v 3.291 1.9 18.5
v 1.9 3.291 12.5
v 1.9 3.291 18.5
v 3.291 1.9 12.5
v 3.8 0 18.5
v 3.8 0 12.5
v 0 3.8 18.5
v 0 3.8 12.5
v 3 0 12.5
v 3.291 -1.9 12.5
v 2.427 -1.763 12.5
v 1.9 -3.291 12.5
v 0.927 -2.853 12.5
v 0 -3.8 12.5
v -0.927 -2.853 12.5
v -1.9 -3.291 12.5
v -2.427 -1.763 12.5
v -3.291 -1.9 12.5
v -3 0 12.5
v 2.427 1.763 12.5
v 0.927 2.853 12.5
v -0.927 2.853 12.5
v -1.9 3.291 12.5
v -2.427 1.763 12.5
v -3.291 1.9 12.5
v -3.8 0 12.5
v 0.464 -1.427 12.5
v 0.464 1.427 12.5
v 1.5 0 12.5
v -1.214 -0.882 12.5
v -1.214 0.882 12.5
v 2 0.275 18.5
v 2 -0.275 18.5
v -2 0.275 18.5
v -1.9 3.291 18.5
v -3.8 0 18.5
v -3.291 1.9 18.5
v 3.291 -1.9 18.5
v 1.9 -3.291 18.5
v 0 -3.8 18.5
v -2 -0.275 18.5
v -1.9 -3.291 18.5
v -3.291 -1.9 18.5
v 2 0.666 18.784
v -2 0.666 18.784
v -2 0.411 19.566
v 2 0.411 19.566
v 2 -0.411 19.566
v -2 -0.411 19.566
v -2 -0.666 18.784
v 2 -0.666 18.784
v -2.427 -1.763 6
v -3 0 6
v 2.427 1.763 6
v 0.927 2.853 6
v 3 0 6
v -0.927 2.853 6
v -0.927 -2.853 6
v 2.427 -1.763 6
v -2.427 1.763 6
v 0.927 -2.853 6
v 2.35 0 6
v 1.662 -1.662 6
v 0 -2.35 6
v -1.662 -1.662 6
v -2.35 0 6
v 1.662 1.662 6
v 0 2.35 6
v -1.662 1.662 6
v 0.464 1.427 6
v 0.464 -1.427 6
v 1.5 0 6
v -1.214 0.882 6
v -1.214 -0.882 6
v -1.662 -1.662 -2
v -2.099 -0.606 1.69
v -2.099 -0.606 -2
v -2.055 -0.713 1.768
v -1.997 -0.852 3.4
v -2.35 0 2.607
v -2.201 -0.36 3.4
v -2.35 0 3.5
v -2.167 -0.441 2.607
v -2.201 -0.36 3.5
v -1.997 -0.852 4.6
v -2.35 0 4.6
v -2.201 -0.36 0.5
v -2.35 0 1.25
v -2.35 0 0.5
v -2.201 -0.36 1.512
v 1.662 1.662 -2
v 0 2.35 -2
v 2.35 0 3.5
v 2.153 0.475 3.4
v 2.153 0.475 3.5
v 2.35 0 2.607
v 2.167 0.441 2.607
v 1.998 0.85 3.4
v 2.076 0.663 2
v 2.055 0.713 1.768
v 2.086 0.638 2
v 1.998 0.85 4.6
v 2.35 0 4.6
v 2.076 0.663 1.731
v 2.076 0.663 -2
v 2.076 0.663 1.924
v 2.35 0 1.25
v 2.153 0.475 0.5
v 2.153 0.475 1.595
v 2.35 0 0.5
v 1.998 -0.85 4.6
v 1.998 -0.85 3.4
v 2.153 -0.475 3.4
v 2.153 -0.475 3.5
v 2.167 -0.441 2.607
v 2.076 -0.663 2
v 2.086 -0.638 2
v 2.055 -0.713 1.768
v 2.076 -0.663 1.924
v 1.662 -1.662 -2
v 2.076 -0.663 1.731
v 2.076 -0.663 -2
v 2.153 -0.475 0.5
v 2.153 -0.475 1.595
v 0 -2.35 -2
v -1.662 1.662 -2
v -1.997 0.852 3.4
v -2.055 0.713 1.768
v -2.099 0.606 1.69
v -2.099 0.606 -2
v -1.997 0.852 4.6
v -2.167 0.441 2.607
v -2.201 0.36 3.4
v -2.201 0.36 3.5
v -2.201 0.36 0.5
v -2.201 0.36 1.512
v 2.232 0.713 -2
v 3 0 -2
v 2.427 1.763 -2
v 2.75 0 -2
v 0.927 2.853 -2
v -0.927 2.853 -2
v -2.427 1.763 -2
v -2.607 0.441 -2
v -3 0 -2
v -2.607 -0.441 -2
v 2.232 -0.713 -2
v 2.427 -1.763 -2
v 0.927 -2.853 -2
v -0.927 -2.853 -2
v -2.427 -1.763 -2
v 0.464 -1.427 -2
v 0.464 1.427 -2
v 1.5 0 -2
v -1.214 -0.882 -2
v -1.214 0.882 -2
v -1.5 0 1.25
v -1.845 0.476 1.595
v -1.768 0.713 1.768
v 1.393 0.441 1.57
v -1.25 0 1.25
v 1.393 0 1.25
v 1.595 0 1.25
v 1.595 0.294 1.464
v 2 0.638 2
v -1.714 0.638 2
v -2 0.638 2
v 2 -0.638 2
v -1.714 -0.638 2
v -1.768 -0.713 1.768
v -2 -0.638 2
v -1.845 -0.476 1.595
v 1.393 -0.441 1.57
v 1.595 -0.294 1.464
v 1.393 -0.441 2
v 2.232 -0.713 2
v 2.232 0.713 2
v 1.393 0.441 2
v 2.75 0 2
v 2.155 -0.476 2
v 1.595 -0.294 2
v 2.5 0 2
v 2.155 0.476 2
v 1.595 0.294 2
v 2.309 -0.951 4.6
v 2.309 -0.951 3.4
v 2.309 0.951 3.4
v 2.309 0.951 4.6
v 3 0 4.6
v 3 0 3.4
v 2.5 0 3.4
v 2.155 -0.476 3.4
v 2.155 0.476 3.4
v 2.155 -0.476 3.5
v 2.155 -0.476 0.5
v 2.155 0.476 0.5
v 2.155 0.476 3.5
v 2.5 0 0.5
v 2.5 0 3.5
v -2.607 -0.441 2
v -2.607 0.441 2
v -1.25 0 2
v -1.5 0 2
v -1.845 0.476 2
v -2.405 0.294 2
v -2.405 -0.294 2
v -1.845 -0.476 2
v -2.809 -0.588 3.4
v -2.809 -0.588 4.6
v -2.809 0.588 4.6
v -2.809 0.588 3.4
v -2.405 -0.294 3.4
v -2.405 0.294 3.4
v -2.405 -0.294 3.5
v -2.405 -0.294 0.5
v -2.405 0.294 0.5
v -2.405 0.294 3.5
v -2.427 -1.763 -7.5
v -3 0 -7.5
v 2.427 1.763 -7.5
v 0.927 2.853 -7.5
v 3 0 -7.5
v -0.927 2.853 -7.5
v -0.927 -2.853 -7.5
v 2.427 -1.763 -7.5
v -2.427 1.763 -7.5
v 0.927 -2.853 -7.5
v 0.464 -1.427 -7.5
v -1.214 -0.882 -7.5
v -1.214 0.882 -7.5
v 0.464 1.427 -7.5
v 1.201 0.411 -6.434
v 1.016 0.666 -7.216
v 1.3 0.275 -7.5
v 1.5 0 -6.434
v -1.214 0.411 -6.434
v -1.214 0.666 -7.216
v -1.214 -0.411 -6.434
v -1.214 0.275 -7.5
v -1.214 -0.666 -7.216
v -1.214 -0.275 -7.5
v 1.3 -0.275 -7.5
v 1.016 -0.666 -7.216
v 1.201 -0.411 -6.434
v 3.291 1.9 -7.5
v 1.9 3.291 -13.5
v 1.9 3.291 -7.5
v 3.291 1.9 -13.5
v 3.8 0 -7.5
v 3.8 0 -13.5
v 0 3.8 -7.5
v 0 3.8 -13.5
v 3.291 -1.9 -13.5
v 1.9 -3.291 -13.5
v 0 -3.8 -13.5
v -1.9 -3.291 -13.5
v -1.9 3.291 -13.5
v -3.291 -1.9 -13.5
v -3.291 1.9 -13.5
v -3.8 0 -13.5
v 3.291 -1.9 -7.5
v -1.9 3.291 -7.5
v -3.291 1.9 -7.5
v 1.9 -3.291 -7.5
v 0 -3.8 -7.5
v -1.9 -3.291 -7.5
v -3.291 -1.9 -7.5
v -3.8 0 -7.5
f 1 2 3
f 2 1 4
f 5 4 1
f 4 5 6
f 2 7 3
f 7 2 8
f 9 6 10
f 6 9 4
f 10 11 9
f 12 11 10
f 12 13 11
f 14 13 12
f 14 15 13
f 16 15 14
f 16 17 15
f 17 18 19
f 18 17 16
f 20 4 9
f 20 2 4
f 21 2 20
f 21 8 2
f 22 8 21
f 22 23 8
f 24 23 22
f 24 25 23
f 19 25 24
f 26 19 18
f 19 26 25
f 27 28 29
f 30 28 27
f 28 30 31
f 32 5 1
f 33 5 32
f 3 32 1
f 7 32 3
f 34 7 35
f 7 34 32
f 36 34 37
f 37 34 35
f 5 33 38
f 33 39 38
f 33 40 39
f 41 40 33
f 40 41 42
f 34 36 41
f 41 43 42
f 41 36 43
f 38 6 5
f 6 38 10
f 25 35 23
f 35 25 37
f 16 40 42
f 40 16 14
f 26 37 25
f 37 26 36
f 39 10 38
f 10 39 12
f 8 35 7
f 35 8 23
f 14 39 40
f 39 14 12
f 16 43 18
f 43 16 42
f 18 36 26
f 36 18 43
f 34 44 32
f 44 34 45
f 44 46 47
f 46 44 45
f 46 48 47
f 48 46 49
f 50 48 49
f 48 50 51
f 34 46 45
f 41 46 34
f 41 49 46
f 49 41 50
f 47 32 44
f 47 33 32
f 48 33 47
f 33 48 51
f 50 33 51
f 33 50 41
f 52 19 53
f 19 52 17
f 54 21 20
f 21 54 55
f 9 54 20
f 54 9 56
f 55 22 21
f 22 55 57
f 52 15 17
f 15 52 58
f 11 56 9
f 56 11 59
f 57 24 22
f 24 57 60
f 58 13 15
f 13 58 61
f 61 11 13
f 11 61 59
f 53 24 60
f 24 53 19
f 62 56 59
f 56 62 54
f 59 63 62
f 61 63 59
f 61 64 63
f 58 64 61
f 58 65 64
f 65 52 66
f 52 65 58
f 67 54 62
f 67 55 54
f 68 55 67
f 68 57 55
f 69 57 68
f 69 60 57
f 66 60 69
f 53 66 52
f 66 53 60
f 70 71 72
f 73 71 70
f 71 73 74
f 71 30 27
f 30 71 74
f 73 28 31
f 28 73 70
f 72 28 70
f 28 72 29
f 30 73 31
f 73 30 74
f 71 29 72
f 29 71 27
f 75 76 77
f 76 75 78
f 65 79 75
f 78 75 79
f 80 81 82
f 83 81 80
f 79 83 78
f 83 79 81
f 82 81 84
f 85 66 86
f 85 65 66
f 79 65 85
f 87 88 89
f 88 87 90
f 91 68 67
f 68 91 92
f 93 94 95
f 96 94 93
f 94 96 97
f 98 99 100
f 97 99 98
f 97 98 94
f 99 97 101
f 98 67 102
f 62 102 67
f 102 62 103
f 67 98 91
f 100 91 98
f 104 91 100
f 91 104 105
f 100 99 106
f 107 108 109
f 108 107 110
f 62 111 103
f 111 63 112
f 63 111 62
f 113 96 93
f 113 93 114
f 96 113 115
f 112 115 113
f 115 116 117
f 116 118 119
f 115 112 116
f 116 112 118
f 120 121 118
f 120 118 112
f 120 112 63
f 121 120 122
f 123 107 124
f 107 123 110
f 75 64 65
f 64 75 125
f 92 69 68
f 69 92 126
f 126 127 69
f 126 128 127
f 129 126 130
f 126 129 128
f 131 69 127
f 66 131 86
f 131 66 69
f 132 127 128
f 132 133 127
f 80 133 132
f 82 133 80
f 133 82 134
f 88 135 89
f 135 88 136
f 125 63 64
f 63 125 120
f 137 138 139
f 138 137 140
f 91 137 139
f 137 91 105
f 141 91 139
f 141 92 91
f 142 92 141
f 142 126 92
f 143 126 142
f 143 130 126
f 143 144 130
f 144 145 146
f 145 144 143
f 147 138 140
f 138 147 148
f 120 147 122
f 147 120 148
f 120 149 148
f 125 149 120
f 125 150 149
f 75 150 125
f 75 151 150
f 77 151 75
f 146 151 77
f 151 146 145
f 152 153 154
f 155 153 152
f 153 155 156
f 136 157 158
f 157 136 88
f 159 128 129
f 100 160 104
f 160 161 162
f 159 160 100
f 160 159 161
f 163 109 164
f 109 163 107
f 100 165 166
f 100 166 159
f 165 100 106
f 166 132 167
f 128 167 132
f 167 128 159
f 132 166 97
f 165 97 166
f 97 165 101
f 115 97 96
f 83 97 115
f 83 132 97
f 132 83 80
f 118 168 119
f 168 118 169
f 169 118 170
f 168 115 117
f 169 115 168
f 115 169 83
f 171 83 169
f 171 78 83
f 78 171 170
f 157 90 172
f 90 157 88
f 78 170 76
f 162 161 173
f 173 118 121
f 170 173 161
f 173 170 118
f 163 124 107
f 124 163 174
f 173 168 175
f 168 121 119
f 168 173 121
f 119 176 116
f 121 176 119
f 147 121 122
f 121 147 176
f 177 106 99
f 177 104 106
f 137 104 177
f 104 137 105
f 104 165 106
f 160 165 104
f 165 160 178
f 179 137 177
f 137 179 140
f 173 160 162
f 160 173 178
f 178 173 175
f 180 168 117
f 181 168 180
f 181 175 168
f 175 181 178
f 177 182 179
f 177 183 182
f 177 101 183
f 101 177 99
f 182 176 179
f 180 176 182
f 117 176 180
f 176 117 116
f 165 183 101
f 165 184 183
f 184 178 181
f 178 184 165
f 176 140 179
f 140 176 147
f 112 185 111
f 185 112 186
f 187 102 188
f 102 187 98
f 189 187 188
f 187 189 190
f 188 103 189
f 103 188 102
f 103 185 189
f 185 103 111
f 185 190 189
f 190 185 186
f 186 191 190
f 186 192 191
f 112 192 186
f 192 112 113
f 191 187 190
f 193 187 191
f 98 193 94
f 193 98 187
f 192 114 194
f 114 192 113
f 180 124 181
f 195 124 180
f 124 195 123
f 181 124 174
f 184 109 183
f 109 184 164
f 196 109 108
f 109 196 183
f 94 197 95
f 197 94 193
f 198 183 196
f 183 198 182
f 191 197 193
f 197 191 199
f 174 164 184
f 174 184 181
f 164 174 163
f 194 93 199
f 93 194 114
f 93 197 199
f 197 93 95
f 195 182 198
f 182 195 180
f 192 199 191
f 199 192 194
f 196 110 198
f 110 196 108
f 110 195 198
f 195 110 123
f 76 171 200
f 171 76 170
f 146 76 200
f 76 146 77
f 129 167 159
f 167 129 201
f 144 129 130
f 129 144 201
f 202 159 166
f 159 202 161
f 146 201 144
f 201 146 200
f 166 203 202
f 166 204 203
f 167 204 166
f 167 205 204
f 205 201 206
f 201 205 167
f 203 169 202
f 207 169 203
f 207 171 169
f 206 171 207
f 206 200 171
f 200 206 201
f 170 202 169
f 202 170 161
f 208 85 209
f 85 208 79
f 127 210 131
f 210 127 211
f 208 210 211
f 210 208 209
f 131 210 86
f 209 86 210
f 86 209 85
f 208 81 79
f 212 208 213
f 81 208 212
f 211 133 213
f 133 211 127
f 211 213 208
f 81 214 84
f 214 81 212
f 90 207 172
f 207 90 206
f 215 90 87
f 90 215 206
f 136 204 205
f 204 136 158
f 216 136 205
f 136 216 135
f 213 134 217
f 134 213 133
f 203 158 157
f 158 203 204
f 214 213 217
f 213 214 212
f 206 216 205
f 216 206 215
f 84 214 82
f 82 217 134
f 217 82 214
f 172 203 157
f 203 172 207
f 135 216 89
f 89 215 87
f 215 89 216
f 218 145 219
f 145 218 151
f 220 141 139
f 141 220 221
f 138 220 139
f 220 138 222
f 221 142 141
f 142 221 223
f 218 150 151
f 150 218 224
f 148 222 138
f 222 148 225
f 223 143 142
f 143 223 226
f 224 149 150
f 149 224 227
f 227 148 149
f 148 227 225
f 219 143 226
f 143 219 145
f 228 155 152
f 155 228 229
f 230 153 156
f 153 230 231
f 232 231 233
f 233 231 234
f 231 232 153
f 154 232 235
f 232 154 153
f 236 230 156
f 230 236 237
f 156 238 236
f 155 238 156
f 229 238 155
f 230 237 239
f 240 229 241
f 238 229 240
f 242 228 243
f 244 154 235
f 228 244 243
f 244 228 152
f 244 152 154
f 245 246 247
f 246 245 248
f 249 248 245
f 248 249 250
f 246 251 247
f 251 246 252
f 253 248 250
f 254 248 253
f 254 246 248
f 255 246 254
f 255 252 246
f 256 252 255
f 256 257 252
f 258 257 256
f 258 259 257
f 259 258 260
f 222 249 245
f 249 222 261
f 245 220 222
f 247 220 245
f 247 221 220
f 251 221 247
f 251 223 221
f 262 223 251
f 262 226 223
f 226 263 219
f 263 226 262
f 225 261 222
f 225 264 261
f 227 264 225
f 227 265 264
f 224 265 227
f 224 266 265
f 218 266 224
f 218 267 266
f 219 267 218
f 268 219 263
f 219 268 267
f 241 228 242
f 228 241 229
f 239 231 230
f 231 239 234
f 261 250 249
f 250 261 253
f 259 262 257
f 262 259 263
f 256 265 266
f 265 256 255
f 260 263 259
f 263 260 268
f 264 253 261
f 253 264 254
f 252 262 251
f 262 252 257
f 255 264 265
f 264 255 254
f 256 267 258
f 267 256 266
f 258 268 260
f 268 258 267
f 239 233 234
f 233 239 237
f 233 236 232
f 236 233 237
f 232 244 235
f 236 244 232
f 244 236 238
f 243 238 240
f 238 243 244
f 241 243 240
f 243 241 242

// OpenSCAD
// Define the components
module cylindrical_base() {
    translate([0, 0, -0.5])
    cylinder(h=6, r1=3.8, r2=3.8, center=true); // Increased length and adjusted proportions
    translate([0, 0, 3])
    rotate([0, 90, 0]) // Align perforations
    cylinder(h=4, r1=0.7, r2=0.7, center=true); // Perforations at both ends
}

module small_hollow_cylinder() {
    difference() {
        translate([0, 0, -0.5])
        cylinder(h=7, r1=3, r2=3, center=true); // Increased outer diameter
        translate([0, 0, -0.5])
        cylinder(h=7, r1=1.5, r2=1.5, center=true); // Enlarged inner hollow area
    }
}

module bolt_like_fastener() {
    difference() {
        union() {
            translate([0, 0, -2])
            cylinder(h=4, r1=0.75, r2=0.75, center=true); // Elongated cylindrical base
            translate([0, 0, 2])
            rotate([0,0,0])
            cylinder(h=1.2, r1=1, r2=1, center=true); // Adjusted hexagonal head size
        }
        translate([0, 0, 0])
        rotate([0, 0, 0])
        cylinder(h=3, r1=0.5, r2=0.5, center=true); // Refined threading for better fitment
    }
}

module connector_cylinder_with_bolt_holes() {
    difference() {
        cylinder(h=8, r1=2.35, r2=2.35, center=true); // Adjusted thickness for uniformity
        translate([-1.7, 0, 0]) // Proper alignment of holes
        rotate([0, 90, 0])
        cylinder(h=8, r1=0.75, r2=0.75, center=true); // Defined hole size
        translate([1.7, 0, 0]) // Symmetrical alignment of holes
        rotate([0, 90, 0])
        cylinder(h=8, r1=0.75, r2=0.75, center=true); // Defined hole size
    }
}

// Build the model assembly
module flexible_coupling() {
    translate([0, 0, 16]) cylindrical_base();
    translate([0, 0, 10]) small_hollow_cylinder();
    translate([0, 0, 2]) connector_cylinder_with_bolt_holes(); // Adjusted positioning
    translate([2, 0, 2]) bolt_like_fastener();
    translate([-2, 0, 2]) bolt_like_fastener();
    translate([0, 0, -5]) small_hollow_cylinder();
    translate([0, 0, -10]) cylindrical_base(); // Adjusted positioning
}

// Render the assembly
flexible_coupling();
